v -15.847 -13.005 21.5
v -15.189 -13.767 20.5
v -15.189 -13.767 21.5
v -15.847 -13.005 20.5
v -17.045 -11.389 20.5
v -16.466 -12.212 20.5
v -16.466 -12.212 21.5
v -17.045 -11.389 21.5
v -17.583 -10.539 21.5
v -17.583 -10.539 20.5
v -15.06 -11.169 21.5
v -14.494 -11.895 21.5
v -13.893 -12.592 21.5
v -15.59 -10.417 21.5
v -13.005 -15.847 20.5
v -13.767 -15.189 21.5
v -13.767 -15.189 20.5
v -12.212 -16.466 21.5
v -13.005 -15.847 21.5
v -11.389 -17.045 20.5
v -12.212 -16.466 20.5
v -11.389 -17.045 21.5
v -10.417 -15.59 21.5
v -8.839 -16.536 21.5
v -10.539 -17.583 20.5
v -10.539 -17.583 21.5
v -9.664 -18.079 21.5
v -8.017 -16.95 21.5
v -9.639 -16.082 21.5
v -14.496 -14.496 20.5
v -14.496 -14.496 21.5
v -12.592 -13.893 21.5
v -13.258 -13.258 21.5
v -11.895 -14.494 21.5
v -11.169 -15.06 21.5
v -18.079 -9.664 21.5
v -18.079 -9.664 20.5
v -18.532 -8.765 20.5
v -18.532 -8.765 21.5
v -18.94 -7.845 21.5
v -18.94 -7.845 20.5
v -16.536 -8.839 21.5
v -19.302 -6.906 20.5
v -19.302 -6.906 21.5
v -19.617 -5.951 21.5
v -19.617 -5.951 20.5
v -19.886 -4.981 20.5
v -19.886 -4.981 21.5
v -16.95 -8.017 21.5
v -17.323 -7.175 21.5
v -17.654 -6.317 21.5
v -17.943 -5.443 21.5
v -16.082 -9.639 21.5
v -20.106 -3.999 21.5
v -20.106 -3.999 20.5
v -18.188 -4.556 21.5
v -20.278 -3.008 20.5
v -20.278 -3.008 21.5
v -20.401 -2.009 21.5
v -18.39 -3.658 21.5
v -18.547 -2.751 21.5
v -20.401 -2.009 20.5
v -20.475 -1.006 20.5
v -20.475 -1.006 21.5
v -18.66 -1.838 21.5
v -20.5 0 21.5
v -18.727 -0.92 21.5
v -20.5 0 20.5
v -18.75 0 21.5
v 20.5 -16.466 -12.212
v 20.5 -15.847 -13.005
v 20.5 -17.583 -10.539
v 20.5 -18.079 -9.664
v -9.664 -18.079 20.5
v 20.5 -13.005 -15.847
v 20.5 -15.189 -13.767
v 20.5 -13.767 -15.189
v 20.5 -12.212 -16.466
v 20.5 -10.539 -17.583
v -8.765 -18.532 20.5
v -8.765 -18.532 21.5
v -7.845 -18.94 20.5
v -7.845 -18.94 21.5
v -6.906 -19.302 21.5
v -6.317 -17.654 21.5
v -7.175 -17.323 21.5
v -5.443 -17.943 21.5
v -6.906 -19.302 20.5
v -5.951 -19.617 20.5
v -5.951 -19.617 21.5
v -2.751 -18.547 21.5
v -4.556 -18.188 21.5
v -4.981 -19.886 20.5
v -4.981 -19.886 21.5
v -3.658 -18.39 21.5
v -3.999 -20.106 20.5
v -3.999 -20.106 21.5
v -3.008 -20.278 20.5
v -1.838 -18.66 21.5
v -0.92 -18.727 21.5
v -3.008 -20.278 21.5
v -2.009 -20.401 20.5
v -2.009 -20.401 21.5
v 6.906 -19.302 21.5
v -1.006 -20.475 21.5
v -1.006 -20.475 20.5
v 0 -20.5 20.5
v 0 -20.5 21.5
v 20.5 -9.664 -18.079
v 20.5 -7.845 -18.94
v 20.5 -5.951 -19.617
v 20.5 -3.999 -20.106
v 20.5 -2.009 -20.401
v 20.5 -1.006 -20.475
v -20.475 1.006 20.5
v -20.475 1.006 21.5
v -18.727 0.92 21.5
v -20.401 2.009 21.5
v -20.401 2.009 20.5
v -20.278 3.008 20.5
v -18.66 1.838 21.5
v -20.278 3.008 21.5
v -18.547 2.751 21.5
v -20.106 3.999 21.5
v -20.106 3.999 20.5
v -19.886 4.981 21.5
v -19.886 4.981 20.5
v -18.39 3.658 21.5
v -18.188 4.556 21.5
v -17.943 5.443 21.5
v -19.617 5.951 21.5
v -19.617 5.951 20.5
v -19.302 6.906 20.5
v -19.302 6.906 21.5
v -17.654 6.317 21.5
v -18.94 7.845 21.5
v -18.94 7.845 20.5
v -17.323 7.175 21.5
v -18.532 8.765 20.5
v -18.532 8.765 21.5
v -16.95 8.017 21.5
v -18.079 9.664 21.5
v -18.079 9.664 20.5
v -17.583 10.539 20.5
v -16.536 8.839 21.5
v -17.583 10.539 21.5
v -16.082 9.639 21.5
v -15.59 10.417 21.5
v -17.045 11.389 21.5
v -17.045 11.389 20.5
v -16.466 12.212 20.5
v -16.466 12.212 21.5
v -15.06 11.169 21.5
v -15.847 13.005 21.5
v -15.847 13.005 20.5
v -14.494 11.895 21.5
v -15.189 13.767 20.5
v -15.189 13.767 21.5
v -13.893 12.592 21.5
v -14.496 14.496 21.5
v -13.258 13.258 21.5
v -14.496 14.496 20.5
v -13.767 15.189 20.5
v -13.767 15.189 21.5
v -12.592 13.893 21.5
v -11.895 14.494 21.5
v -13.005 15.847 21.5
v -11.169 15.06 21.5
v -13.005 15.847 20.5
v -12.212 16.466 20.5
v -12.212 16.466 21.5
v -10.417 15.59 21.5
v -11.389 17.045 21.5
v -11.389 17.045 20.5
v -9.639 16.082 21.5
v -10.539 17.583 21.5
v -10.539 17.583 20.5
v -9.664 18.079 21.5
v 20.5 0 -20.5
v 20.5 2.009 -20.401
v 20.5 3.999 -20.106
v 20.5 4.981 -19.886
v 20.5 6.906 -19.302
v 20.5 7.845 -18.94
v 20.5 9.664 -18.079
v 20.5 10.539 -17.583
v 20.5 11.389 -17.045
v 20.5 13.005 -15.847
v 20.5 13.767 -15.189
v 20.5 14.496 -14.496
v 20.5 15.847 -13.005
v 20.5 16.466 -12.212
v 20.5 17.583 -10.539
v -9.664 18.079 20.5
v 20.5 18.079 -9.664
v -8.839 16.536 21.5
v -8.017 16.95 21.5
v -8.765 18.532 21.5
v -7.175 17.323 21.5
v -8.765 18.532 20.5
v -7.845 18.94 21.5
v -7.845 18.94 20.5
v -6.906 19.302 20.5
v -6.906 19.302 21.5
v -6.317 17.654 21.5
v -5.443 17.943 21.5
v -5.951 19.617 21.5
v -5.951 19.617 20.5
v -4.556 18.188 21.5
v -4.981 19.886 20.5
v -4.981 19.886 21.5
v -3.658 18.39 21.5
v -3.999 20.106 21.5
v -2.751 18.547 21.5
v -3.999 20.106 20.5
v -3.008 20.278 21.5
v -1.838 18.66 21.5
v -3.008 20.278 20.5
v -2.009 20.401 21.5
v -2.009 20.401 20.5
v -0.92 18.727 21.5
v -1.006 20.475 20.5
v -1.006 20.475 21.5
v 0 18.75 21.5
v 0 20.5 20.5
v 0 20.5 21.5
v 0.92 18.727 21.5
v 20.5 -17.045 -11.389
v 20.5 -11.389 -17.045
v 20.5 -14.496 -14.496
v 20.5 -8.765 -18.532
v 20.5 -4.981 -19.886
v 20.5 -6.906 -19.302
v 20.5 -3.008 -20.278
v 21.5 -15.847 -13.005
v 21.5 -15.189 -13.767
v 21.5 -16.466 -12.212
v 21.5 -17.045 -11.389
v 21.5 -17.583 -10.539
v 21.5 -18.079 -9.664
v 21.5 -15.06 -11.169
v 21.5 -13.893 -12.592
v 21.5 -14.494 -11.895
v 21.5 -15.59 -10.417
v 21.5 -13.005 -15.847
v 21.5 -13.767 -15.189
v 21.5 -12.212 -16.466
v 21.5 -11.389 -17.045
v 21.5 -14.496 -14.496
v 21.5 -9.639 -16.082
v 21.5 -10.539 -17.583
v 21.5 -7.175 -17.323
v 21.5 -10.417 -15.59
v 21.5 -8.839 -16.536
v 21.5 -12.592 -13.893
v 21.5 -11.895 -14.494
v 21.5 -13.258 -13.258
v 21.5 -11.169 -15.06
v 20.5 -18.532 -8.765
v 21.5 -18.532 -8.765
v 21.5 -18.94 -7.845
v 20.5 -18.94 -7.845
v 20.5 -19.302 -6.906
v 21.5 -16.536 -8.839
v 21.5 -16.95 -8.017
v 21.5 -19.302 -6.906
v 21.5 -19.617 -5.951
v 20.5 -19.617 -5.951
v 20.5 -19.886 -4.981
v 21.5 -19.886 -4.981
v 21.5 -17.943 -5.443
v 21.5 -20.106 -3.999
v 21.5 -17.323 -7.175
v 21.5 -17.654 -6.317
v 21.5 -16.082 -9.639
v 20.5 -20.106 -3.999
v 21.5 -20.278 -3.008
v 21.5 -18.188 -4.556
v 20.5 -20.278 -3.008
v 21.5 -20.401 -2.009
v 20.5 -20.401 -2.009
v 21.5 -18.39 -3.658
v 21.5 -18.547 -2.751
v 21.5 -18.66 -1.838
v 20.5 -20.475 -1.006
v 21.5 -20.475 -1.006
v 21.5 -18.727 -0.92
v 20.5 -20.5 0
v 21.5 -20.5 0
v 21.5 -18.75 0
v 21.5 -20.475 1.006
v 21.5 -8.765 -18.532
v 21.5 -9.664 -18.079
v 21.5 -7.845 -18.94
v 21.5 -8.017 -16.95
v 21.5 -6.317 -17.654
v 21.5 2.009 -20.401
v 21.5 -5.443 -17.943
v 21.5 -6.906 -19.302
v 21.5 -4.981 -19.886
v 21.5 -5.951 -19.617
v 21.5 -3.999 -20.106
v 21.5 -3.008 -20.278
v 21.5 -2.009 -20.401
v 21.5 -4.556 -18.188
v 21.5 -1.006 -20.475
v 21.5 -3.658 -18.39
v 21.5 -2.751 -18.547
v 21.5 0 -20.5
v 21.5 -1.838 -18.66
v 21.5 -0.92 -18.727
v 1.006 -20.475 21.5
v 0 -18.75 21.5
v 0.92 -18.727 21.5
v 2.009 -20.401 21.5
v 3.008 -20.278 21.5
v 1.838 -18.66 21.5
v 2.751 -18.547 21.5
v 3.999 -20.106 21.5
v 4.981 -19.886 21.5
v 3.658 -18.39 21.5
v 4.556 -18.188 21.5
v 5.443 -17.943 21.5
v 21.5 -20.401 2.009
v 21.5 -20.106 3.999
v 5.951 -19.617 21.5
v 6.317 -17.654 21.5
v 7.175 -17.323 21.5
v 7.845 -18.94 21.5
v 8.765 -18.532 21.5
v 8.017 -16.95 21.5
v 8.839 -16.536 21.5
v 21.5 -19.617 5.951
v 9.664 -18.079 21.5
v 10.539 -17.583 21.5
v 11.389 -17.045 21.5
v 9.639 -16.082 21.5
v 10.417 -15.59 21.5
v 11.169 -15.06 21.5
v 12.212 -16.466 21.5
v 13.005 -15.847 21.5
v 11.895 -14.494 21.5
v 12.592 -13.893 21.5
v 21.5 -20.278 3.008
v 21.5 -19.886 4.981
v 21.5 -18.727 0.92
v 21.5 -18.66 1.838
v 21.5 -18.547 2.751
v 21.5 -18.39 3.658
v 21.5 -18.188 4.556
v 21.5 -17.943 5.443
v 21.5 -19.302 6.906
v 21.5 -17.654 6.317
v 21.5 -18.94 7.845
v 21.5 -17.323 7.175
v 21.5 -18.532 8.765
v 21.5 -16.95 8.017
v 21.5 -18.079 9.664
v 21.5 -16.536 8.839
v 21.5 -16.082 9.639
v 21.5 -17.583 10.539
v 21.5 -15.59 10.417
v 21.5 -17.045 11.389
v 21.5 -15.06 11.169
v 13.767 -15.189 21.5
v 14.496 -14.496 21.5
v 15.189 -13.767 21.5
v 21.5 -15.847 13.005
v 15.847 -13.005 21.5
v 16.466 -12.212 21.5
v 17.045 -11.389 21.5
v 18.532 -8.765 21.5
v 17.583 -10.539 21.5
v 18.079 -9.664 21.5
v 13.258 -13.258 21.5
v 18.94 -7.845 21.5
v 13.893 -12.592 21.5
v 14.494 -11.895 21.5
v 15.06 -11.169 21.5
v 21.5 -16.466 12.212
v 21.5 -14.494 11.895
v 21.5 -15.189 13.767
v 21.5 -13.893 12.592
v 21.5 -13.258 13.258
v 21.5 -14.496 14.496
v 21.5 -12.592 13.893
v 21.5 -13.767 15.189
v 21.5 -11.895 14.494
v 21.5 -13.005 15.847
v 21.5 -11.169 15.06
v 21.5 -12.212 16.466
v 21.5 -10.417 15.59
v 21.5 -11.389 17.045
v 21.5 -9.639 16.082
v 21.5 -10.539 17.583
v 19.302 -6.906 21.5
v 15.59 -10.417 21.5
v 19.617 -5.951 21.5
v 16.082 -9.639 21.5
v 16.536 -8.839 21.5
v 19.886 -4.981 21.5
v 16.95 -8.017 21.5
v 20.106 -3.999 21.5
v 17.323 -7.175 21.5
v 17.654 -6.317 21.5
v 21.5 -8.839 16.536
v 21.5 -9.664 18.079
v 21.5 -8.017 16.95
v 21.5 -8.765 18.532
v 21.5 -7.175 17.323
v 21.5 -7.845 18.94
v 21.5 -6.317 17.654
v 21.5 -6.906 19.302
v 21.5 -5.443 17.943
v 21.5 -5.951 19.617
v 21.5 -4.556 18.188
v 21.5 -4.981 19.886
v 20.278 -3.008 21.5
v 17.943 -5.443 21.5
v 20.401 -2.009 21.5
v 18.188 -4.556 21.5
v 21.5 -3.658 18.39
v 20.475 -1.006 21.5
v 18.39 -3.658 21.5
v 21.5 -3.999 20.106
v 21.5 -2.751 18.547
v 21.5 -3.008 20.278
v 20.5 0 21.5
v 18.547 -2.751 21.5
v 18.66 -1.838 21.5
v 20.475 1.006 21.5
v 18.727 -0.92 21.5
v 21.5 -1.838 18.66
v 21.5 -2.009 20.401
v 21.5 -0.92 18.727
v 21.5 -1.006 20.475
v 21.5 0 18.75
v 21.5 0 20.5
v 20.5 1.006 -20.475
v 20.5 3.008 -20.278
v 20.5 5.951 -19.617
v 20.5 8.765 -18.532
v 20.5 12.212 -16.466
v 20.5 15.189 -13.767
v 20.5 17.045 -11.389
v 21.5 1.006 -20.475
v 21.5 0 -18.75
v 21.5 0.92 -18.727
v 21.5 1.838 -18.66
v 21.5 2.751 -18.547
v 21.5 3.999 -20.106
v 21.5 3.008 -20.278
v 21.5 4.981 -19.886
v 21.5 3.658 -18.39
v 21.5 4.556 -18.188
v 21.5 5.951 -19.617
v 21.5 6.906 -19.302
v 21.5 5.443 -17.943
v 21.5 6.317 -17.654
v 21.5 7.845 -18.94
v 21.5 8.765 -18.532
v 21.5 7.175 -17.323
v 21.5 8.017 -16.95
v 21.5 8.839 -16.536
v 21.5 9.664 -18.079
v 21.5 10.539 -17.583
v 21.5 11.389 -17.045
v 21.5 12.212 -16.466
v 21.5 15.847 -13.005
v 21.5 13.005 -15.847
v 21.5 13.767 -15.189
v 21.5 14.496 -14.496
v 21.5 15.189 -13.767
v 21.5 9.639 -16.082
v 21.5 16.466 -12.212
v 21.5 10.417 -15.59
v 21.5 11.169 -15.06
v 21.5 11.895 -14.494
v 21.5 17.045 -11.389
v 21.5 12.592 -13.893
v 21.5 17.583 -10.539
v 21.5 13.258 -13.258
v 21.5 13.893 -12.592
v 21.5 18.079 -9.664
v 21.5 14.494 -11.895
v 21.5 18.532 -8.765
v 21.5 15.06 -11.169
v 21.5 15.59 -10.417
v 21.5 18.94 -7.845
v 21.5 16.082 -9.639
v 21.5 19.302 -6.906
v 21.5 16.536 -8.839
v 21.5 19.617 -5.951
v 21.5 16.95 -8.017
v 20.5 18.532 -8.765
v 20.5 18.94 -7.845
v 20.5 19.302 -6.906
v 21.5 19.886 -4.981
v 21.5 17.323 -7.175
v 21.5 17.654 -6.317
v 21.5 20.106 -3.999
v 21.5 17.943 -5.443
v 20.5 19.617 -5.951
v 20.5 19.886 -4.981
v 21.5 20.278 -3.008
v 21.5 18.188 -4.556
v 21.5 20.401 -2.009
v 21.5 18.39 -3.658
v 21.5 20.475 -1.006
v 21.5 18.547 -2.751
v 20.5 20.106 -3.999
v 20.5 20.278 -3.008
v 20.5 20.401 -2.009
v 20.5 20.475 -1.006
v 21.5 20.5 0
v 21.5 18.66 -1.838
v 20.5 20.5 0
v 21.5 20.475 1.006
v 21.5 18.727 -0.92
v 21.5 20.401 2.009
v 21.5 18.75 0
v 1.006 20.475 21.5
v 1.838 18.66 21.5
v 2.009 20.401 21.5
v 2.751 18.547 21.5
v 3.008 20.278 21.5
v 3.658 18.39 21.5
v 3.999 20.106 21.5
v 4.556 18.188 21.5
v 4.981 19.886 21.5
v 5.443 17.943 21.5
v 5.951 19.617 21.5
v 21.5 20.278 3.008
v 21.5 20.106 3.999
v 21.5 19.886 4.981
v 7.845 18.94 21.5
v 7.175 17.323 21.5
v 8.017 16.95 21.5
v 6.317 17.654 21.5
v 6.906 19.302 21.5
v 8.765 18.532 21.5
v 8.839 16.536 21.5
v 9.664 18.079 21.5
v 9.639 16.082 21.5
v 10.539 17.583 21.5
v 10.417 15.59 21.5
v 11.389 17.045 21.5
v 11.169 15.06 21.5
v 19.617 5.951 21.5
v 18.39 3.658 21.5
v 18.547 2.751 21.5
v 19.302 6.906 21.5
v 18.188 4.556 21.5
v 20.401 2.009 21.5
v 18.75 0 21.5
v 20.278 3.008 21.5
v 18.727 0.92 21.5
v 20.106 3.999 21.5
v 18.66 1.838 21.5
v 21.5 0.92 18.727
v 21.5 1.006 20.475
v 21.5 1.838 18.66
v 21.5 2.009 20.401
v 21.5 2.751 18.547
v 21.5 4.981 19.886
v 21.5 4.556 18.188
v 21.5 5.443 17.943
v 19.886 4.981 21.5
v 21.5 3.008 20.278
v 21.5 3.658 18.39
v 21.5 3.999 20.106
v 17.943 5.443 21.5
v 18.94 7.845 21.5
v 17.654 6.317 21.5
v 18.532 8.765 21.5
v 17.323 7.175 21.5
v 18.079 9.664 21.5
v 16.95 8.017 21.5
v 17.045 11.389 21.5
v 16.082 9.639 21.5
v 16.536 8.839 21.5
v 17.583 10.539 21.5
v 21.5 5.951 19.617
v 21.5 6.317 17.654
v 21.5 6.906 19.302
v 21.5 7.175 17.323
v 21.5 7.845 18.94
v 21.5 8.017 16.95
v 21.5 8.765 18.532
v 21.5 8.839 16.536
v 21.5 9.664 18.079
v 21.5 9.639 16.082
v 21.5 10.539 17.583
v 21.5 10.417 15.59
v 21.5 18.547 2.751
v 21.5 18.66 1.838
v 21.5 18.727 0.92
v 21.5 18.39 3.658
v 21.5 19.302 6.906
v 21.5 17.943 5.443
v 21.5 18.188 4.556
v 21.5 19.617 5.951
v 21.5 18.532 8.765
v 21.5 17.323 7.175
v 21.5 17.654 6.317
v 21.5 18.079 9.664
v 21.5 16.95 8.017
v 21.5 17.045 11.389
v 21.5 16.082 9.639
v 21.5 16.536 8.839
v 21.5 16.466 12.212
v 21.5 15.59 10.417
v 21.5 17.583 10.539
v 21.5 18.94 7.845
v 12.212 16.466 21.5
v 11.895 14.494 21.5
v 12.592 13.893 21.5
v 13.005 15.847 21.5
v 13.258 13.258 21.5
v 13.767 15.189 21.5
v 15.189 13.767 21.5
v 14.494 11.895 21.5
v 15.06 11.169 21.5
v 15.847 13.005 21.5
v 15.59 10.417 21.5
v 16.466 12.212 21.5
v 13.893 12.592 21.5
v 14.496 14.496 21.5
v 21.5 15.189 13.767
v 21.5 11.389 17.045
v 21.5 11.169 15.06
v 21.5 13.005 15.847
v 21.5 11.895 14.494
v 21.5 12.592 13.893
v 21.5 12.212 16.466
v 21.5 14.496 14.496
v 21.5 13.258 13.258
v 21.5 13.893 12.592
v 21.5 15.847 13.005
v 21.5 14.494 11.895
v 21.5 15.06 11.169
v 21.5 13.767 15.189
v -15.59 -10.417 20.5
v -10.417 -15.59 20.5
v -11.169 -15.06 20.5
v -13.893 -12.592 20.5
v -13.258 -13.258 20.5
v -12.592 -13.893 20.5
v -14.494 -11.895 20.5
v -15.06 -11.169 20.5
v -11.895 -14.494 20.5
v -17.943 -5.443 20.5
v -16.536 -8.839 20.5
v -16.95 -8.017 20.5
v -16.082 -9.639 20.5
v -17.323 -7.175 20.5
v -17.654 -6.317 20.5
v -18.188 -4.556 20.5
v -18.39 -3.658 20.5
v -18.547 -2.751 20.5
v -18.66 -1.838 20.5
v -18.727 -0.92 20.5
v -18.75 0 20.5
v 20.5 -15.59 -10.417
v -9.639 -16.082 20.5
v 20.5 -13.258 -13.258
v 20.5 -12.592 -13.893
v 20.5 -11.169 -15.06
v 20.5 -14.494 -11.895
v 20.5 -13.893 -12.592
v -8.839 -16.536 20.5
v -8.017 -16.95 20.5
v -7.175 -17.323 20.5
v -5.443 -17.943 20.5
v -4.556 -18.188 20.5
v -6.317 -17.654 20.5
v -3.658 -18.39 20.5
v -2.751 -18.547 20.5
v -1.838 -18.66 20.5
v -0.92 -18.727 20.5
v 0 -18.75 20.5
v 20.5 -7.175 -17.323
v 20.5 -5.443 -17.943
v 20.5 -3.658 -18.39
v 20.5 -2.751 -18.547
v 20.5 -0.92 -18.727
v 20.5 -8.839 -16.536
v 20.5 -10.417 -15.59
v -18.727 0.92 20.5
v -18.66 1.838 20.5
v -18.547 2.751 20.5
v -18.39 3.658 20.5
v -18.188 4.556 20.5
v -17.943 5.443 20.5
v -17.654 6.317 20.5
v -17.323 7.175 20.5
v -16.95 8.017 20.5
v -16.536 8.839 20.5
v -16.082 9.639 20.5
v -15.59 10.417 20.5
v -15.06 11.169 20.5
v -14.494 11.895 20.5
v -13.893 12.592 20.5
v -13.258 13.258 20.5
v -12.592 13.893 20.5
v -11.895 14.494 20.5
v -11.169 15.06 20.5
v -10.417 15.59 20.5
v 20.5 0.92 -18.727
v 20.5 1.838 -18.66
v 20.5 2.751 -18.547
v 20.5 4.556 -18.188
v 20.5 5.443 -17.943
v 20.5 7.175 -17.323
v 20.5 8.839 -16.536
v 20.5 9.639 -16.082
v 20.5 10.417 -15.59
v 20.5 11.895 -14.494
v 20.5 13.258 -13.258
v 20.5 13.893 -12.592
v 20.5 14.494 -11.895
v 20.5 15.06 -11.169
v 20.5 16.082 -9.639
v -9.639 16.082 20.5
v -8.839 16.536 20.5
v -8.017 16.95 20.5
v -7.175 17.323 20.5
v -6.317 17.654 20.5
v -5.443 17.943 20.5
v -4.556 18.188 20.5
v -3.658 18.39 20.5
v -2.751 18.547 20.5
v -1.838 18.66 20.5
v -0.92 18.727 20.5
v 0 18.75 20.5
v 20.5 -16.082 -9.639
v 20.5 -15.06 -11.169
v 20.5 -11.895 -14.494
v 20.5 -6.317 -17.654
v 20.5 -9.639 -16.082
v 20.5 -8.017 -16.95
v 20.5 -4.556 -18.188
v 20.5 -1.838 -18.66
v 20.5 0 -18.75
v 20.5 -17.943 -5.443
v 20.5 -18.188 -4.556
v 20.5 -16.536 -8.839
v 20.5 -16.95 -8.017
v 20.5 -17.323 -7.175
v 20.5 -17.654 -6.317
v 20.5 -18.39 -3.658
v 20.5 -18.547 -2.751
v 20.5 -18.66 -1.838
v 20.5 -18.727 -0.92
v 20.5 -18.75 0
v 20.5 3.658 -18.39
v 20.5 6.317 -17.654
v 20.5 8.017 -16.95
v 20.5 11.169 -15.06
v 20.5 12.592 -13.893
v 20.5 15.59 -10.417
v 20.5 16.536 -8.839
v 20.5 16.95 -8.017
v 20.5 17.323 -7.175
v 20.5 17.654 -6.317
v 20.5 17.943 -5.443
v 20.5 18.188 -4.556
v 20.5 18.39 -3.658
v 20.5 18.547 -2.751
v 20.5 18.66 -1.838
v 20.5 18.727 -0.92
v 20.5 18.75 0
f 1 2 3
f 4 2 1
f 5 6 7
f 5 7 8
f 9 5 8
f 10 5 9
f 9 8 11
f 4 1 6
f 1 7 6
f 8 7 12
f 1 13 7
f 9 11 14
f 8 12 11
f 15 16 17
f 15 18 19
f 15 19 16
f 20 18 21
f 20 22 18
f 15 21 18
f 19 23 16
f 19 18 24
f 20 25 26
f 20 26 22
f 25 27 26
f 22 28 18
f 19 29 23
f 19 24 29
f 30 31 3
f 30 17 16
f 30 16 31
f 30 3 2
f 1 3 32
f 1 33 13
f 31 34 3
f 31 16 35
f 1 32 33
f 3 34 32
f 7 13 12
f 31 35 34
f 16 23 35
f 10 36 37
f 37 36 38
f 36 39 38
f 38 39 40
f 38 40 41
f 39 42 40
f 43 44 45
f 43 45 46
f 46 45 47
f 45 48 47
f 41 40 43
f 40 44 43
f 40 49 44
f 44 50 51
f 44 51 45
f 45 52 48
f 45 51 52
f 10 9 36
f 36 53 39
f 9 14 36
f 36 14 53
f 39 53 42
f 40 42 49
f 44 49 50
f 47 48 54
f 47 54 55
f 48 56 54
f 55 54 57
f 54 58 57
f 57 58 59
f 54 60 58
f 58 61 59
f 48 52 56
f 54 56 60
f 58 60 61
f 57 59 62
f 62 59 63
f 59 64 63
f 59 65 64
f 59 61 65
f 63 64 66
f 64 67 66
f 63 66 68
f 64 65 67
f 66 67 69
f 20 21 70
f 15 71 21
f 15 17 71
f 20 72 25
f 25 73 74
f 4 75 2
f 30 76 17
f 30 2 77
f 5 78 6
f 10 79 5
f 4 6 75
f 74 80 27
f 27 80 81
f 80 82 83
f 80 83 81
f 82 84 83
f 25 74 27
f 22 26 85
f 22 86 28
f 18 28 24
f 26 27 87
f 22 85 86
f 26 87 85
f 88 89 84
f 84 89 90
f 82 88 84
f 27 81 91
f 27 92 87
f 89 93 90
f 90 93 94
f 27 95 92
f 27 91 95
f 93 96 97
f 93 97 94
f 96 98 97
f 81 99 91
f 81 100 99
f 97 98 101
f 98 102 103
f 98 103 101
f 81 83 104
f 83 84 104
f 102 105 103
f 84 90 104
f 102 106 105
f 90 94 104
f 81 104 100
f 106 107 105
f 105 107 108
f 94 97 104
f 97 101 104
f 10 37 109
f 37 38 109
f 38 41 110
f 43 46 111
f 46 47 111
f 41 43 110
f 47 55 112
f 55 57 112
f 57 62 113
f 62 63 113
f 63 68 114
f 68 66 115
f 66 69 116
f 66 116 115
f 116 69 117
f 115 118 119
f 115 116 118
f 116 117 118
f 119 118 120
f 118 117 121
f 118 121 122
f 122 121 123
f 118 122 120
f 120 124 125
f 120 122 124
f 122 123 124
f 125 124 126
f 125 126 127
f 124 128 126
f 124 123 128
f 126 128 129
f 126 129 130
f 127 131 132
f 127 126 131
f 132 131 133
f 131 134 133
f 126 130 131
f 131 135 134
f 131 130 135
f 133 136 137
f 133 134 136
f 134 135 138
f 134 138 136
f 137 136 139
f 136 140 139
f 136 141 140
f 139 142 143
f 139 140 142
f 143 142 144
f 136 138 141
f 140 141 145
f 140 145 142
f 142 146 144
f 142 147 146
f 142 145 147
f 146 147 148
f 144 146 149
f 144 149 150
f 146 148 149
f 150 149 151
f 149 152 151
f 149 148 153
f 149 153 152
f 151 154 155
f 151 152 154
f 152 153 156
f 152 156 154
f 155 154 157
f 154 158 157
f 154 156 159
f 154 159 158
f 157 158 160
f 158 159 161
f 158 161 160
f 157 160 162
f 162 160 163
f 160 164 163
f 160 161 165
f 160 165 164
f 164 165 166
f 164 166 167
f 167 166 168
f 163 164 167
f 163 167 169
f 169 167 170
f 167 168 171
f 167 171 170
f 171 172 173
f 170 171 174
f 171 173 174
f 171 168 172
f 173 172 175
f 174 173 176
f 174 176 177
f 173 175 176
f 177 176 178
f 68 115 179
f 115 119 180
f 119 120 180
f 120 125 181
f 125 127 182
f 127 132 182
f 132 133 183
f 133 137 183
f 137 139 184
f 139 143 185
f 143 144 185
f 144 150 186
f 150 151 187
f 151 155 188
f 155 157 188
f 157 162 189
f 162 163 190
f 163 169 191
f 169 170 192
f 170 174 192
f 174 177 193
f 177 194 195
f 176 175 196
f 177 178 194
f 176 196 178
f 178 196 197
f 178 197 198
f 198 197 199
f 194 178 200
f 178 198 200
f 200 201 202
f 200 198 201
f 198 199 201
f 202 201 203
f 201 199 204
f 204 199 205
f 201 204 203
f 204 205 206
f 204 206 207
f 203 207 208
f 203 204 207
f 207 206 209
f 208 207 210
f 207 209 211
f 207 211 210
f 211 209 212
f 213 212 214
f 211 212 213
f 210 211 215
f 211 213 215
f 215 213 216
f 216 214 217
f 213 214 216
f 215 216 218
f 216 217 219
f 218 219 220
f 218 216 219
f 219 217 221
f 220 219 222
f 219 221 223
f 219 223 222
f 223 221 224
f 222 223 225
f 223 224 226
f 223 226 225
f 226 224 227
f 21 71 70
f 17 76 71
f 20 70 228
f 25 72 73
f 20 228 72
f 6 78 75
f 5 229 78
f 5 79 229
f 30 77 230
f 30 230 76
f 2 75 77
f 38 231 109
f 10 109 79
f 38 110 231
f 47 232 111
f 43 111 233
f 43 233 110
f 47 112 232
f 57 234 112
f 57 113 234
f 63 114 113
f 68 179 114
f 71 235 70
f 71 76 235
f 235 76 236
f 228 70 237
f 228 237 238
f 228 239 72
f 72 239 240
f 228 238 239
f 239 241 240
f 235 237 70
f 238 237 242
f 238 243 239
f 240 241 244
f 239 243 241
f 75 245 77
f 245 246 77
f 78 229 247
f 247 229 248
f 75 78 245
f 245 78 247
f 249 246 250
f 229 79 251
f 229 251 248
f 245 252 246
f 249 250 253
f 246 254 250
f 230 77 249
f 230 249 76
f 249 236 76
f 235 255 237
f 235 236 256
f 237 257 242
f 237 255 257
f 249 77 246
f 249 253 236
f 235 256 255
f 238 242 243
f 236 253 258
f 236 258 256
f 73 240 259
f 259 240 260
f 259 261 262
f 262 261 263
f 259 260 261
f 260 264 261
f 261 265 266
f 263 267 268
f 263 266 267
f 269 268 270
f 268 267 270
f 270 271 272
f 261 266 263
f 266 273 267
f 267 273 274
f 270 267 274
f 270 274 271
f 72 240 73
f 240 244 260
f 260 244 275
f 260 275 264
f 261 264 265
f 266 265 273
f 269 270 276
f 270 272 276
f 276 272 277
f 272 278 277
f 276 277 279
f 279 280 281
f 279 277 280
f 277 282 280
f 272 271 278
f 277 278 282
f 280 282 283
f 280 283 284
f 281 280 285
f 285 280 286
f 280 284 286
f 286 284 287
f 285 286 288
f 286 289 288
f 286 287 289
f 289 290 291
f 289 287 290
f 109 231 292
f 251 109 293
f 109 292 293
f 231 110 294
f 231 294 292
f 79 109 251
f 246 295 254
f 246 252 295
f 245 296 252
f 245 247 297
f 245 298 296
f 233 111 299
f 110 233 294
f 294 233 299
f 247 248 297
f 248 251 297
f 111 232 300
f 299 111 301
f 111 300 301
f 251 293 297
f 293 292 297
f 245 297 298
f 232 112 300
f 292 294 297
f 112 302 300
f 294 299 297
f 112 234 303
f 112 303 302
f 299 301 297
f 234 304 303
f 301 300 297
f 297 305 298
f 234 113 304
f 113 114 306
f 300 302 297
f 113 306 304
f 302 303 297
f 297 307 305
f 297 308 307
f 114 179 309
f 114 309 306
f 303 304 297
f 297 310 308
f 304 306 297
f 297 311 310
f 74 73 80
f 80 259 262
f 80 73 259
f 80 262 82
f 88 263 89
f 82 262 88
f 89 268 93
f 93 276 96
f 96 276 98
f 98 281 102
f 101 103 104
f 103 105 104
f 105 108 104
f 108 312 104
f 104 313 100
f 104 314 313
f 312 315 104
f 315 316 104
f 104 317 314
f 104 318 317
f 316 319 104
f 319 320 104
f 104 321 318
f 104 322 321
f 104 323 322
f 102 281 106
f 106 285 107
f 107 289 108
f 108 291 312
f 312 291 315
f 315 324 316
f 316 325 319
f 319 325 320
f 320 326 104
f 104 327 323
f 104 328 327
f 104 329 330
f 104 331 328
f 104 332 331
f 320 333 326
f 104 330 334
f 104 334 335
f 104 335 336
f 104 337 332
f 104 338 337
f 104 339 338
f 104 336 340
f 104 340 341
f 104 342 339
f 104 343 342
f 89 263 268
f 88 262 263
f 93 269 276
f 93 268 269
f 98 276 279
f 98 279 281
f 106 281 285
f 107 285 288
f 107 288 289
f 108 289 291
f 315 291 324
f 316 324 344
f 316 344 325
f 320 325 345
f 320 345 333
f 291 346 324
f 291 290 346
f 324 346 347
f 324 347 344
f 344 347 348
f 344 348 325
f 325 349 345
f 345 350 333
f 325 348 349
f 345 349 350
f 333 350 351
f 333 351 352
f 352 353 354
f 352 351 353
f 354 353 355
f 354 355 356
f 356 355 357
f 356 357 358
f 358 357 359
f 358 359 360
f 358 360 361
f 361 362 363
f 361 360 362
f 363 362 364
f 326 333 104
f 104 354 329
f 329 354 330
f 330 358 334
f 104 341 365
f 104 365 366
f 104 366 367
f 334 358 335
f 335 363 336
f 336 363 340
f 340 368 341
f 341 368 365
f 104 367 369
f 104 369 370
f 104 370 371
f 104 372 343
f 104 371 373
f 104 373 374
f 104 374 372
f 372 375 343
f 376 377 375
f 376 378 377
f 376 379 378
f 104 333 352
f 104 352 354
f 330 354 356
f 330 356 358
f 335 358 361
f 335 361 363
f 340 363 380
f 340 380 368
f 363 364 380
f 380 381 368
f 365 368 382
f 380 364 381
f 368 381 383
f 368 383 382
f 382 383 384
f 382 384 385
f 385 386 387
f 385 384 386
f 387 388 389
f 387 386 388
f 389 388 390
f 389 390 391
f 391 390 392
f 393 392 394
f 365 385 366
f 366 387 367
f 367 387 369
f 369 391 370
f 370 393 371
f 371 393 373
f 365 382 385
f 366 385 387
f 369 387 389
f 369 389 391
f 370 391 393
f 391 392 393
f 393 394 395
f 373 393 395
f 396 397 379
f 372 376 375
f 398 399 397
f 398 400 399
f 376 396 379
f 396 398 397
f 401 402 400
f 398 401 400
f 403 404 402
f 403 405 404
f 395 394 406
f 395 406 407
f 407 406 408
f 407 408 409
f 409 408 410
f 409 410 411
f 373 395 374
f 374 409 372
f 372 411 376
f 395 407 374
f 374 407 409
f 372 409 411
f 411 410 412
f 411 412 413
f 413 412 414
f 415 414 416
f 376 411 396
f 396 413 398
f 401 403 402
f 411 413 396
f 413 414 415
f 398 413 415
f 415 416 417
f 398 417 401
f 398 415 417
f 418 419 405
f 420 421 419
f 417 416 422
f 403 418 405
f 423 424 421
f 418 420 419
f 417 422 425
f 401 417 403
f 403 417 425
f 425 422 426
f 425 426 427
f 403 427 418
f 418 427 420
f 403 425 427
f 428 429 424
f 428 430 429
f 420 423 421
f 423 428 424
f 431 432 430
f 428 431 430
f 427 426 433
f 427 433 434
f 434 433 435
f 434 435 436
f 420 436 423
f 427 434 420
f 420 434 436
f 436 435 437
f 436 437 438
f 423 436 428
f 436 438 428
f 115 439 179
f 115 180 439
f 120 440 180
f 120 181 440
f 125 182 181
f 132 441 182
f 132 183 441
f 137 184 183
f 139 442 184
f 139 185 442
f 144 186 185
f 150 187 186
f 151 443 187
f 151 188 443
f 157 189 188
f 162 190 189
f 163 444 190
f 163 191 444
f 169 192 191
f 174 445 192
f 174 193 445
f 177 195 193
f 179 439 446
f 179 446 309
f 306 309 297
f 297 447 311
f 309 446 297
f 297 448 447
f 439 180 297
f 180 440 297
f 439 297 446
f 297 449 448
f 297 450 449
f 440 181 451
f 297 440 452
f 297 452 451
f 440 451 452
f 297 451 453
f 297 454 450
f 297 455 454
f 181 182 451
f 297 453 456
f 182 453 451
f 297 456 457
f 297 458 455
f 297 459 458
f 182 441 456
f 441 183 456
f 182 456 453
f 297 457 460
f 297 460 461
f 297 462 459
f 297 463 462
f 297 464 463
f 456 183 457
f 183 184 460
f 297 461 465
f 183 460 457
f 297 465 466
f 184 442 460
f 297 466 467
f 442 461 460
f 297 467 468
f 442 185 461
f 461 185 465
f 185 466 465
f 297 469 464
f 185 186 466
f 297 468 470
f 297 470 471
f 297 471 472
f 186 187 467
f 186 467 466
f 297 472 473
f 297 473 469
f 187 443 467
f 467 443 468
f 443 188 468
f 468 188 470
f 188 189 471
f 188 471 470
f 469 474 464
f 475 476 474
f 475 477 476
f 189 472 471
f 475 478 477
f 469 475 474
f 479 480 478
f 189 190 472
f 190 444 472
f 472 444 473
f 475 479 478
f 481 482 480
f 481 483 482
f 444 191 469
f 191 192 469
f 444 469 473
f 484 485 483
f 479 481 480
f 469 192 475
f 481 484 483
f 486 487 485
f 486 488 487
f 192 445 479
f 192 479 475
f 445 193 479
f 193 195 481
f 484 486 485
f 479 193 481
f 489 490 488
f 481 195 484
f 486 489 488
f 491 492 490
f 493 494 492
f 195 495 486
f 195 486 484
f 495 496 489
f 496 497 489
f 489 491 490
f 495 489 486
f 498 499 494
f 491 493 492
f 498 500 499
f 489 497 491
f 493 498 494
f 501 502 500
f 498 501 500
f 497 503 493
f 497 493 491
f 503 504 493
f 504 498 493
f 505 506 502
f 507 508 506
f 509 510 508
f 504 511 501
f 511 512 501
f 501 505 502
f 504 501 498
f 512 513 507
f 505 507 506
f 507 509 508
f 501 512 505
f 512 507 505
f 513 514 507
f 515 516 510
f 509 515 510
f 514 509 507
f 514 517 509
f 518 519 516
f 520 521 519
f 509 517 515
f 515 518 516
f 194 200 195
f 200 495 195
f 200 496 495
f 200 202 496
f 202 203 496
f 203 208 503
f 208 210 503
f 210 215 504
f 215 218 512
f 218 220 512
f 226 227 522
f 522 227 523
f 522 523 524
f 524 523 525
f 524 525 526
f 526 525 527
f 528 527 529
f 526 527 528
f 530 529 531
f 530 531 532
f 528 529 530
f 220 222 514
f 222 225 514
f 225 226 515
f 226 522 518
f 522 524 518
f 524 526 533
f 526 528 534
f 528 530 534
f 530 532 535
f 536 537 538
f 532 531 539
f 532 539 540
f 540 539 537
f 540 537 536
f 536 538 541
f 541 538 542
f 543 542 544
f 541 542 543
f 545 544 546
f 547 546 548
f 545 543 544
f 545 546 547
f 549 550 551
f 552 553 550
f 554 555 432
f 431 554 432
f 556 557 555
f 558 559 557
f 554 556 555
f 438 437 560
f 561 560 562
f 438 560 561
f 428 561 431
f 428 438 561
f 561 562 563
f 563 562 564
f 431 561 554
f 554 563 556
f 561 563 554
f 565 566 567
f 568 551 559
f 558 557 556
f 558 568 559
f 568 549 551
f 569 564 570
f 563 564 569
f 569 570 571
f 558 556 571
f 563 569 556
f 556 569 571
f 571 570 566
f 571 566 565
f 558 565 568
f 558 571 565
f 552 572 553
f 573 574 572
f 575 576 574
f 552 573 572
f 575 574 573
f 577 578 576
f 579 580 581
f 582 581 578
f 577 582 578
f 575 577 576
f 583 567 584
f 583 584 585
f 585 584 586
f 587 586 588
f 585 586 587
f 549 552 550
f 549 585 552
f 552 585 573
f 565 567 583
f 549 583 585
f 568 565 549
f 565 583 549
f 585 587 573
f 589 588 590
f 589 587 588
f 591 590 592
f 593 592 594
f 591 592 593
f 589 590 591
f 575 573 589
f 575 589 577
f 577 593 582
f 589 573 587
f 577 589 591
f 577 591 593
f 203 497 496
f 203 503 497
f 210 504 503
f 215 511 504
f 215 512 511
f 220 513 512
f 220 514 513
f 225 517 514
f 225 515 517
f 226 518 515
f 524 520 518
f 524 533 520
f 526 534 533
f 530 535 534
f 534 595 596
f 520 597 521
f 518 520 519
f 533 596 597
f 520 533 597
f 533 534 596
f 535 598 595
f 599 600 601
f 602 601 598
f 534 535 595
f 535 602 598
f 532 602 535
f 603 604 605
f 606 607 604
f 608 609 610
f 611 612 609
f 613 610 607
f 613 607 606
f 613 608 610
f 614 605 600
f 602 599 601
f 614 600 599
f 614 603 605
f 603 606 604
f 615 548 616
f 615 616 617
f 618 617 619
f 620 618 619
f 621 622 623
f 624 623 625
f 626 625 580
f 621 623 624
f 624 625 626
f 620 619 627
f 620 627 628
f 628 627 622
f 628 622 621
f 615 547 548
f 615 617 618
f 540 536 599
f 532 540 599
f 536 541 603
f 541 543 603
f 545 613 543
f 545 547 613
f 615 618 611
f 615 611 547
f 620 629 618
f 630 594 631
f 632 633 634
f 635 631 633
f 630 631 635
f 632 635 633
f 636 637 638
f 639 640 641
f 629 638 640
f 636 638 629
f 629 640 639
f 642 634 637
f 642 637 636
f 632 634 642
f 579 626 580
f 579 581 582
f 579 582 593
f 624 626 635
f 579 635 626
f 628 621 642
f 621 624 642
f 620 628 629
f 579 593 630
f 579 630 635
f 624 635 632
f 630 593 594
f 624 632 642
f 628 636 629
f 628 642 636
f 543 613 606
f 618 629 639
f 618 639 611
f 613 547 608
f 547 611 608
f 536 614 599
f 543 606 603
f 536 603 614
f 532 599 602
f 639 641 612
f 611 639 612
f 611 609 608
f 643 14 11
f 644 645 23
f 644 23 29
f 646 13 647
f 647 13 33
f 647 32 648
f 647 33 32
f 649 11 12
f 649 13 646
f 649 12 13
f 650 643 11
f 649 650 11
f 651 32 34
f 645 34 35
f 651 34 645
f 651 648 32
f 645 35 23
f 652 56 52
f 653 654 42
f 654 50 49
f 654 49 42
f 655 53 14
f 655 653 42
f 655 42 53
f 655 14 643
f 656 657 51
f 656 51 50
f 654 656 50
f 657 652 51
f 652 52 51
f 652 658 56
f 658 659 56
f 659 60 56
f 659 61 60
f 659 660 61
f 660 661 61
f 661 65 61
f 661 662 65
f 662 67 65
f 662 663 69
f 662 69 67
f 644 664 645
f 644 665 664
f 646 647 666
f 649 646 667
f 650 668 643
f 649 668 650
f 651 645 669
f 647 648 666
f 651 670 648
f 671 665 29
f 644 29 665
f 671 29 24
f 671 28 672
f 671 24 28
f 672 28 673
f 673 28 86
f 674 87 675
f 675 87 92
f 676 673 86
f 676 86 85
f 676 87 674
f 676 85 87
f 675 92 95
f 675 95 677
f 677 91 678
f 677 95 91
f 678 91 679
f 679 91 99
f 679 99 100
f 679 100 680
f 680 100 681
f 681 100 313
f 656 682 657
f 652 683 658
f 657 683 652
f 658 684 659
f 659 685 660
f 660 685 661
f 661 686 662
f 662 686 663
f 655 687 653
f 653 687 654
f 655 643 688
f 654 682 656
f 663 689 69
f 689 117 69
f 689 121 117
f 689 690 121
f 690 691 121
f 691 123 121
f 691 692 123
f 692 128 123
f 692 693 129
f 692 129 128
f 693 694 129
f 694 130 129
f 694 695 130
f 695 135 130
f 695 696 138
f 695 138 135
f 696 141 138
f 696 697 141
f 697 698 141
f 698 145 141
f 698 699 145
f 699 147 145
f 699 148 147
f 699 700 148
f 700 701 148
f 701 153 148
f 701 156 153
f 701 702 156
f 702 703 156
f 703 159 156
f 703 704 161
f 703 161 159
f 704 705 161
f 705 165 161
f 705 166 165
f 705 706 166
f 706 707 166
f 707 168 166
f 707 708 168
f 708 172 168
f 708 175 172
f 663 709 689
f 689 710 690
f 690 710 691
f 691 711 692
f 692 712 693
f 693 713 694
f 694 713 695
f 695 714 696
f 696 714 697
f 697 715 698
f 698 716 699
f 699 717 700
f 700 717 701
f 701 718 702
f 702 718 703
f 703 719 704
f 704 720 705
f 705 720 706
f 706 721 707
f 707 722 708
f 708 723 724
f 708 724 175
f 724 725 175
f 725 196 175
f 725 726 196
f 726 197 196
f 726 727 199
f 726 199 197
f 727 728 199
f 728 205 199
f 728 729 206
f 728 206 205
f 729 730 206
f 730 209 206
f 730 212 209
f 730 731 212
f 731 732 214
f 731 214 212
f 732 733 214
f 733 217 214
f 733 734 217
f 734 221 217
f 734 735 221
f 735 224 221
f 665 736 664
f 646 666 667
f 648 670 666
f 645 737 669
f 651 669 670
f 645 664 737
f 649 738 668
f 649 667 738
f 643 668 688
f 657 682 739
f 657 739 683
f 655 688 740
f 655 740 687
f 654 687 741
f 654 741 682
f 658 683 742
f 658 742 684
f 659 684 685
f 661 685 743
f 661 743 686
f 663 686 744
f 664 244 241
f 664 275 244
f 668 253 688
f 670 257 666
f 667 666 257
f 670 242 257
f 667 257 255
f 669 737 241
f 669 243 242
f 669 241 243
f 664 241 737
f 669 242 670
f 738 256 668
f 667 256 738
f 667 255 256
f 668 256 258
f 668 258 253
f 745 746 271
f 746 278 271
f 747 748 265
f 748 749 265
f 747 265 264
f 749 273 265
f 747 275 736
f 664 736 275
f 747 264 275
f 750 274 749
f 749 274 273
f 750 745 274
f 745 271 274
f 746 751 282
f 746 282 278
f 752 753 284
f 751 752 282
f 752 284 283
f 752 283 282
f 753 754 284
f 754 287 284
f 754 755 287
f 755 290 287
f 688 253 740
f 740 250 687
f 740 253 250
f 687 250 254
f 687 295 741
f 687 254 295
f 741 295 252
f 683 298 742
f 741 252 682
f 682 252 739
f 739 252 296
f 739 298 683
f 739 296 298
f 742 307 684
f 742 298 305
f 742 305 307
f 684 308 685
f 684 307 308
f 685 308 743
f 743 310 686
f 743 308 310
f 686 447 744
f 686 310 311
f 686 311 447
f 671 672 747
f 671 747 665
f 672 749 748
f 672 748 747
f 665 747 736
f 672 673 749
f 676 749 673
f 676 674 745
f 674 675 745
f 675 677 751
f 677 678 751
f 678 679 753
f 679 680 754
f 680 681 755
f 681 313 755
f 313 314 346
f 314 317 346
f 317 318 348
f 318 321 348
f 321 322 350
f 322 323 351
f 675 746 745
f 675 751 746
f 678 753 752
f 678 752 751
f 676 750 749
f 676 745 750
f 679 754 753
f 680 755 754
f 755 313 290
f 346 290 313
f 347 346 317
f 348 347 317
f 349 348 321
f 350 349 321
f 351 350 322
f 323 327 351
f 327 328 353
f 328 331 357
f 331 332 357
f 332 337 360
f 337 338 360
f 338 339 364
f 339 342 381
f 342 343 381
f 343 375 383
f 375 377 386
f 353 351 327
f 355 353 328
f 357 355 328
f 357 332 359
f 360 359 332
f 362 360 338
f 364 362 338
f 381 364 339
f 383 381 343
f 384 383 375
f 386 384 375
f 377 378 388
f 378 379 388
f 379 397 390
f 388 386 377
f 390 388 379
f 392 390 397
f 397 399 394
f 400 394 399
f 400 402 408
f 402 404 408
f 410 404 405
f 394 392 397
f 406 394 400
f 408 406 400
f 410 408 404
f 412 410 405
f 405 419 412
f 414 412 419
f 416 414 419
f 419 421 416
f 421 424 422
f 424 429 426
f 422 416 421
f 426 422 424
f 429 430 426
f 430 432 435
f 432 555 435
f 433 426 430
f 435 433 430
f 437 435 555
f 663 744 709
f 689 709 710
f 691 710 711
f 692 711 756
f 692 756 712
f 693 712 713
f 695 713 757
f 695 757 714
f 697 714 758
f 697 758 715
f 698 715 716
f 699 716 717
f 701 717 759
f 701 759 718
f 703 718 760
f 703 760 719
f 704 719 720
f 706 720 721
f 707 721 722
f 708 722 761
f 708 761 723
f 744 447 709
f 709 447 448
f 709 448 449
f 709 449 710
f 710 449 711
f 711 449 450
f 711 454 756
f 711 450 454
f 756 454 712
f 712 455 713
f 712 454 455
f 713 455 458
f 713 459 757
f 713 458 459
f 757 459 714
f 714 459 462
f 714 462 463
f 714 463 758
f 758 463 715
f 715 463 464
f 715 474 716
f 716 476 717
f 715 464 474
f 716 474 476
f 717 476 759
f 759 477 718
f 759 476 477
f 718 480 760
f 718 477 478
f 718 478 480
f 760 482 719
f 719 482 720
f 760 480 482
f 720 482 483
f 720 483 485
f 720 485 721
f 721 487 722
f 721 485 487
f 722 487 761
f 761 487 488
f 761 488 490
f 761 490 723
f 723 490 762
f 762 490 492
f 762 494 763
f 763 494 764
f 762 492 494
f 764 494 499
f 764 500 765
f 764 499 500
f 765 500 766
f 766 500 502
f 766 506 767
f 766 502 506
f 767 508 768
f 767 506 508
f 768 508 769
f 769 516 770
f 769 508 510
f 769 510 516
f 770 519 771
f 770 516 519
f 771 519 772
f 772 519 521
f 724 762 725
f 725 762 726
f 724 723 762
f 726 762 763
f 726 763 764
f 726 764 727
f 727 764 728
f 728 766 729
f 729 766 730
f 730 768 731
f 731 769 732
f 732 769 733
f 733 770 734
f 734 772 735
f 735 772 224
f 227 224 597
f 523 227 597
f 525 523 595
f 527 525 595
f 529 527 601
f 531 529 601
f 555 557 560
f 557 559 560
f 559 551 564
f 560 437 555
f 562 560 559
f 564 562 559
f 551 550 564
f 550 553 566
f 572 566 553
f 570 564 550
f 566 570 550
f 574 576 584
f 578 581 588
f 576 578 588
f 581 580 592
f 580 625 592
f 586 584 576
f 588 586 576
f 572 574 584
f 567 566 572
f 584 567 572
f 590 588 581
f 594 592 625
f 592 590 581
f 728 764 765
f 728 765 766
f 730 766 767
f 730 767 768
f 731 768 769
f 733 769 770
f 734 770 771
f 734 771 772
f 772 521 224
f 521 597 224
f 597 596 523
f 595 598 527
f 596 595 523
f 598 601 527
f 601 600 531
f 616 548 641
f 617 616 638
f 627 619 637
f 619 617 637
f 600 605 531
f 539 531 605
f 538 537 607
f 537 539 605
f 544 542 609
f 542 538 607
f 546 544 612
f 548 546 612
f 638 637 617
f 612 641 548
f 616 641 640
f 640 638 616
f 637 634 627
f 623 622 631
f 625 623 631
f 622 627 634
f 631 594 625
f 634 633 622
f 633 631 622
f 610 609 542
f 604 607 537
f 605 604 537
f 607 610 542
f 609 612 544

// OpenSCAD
include <config.scad>
use <blower-mount.scad>

module pipe(length) {
    linear_extrude(length) { difference() {
        circle(pipe_outer_radius);
        circle(pipe_inner_radius);
    }}
}

module connection() {
    difference() {
        hull() {
            translate([0, 0, pipe_outer_radius])              cylinder(connection_depth, r=pipe_outer_radius);
            translate([pipe_outer_radius, 0]) rotate([0, 90]) cylinder(connection_depth, r=pipe_outer_radius);
        }
        hull() {
            translate([0, 0, pipe_outer_radius])              cylinder(connection_depth, r=pipe_inner_radius);
            translate([pipe_outer_radius, 0]) rotate([0, 90]) cylinder(connection_depth, r=pipe_inner_radius); 
        }
    }
}

connection();
